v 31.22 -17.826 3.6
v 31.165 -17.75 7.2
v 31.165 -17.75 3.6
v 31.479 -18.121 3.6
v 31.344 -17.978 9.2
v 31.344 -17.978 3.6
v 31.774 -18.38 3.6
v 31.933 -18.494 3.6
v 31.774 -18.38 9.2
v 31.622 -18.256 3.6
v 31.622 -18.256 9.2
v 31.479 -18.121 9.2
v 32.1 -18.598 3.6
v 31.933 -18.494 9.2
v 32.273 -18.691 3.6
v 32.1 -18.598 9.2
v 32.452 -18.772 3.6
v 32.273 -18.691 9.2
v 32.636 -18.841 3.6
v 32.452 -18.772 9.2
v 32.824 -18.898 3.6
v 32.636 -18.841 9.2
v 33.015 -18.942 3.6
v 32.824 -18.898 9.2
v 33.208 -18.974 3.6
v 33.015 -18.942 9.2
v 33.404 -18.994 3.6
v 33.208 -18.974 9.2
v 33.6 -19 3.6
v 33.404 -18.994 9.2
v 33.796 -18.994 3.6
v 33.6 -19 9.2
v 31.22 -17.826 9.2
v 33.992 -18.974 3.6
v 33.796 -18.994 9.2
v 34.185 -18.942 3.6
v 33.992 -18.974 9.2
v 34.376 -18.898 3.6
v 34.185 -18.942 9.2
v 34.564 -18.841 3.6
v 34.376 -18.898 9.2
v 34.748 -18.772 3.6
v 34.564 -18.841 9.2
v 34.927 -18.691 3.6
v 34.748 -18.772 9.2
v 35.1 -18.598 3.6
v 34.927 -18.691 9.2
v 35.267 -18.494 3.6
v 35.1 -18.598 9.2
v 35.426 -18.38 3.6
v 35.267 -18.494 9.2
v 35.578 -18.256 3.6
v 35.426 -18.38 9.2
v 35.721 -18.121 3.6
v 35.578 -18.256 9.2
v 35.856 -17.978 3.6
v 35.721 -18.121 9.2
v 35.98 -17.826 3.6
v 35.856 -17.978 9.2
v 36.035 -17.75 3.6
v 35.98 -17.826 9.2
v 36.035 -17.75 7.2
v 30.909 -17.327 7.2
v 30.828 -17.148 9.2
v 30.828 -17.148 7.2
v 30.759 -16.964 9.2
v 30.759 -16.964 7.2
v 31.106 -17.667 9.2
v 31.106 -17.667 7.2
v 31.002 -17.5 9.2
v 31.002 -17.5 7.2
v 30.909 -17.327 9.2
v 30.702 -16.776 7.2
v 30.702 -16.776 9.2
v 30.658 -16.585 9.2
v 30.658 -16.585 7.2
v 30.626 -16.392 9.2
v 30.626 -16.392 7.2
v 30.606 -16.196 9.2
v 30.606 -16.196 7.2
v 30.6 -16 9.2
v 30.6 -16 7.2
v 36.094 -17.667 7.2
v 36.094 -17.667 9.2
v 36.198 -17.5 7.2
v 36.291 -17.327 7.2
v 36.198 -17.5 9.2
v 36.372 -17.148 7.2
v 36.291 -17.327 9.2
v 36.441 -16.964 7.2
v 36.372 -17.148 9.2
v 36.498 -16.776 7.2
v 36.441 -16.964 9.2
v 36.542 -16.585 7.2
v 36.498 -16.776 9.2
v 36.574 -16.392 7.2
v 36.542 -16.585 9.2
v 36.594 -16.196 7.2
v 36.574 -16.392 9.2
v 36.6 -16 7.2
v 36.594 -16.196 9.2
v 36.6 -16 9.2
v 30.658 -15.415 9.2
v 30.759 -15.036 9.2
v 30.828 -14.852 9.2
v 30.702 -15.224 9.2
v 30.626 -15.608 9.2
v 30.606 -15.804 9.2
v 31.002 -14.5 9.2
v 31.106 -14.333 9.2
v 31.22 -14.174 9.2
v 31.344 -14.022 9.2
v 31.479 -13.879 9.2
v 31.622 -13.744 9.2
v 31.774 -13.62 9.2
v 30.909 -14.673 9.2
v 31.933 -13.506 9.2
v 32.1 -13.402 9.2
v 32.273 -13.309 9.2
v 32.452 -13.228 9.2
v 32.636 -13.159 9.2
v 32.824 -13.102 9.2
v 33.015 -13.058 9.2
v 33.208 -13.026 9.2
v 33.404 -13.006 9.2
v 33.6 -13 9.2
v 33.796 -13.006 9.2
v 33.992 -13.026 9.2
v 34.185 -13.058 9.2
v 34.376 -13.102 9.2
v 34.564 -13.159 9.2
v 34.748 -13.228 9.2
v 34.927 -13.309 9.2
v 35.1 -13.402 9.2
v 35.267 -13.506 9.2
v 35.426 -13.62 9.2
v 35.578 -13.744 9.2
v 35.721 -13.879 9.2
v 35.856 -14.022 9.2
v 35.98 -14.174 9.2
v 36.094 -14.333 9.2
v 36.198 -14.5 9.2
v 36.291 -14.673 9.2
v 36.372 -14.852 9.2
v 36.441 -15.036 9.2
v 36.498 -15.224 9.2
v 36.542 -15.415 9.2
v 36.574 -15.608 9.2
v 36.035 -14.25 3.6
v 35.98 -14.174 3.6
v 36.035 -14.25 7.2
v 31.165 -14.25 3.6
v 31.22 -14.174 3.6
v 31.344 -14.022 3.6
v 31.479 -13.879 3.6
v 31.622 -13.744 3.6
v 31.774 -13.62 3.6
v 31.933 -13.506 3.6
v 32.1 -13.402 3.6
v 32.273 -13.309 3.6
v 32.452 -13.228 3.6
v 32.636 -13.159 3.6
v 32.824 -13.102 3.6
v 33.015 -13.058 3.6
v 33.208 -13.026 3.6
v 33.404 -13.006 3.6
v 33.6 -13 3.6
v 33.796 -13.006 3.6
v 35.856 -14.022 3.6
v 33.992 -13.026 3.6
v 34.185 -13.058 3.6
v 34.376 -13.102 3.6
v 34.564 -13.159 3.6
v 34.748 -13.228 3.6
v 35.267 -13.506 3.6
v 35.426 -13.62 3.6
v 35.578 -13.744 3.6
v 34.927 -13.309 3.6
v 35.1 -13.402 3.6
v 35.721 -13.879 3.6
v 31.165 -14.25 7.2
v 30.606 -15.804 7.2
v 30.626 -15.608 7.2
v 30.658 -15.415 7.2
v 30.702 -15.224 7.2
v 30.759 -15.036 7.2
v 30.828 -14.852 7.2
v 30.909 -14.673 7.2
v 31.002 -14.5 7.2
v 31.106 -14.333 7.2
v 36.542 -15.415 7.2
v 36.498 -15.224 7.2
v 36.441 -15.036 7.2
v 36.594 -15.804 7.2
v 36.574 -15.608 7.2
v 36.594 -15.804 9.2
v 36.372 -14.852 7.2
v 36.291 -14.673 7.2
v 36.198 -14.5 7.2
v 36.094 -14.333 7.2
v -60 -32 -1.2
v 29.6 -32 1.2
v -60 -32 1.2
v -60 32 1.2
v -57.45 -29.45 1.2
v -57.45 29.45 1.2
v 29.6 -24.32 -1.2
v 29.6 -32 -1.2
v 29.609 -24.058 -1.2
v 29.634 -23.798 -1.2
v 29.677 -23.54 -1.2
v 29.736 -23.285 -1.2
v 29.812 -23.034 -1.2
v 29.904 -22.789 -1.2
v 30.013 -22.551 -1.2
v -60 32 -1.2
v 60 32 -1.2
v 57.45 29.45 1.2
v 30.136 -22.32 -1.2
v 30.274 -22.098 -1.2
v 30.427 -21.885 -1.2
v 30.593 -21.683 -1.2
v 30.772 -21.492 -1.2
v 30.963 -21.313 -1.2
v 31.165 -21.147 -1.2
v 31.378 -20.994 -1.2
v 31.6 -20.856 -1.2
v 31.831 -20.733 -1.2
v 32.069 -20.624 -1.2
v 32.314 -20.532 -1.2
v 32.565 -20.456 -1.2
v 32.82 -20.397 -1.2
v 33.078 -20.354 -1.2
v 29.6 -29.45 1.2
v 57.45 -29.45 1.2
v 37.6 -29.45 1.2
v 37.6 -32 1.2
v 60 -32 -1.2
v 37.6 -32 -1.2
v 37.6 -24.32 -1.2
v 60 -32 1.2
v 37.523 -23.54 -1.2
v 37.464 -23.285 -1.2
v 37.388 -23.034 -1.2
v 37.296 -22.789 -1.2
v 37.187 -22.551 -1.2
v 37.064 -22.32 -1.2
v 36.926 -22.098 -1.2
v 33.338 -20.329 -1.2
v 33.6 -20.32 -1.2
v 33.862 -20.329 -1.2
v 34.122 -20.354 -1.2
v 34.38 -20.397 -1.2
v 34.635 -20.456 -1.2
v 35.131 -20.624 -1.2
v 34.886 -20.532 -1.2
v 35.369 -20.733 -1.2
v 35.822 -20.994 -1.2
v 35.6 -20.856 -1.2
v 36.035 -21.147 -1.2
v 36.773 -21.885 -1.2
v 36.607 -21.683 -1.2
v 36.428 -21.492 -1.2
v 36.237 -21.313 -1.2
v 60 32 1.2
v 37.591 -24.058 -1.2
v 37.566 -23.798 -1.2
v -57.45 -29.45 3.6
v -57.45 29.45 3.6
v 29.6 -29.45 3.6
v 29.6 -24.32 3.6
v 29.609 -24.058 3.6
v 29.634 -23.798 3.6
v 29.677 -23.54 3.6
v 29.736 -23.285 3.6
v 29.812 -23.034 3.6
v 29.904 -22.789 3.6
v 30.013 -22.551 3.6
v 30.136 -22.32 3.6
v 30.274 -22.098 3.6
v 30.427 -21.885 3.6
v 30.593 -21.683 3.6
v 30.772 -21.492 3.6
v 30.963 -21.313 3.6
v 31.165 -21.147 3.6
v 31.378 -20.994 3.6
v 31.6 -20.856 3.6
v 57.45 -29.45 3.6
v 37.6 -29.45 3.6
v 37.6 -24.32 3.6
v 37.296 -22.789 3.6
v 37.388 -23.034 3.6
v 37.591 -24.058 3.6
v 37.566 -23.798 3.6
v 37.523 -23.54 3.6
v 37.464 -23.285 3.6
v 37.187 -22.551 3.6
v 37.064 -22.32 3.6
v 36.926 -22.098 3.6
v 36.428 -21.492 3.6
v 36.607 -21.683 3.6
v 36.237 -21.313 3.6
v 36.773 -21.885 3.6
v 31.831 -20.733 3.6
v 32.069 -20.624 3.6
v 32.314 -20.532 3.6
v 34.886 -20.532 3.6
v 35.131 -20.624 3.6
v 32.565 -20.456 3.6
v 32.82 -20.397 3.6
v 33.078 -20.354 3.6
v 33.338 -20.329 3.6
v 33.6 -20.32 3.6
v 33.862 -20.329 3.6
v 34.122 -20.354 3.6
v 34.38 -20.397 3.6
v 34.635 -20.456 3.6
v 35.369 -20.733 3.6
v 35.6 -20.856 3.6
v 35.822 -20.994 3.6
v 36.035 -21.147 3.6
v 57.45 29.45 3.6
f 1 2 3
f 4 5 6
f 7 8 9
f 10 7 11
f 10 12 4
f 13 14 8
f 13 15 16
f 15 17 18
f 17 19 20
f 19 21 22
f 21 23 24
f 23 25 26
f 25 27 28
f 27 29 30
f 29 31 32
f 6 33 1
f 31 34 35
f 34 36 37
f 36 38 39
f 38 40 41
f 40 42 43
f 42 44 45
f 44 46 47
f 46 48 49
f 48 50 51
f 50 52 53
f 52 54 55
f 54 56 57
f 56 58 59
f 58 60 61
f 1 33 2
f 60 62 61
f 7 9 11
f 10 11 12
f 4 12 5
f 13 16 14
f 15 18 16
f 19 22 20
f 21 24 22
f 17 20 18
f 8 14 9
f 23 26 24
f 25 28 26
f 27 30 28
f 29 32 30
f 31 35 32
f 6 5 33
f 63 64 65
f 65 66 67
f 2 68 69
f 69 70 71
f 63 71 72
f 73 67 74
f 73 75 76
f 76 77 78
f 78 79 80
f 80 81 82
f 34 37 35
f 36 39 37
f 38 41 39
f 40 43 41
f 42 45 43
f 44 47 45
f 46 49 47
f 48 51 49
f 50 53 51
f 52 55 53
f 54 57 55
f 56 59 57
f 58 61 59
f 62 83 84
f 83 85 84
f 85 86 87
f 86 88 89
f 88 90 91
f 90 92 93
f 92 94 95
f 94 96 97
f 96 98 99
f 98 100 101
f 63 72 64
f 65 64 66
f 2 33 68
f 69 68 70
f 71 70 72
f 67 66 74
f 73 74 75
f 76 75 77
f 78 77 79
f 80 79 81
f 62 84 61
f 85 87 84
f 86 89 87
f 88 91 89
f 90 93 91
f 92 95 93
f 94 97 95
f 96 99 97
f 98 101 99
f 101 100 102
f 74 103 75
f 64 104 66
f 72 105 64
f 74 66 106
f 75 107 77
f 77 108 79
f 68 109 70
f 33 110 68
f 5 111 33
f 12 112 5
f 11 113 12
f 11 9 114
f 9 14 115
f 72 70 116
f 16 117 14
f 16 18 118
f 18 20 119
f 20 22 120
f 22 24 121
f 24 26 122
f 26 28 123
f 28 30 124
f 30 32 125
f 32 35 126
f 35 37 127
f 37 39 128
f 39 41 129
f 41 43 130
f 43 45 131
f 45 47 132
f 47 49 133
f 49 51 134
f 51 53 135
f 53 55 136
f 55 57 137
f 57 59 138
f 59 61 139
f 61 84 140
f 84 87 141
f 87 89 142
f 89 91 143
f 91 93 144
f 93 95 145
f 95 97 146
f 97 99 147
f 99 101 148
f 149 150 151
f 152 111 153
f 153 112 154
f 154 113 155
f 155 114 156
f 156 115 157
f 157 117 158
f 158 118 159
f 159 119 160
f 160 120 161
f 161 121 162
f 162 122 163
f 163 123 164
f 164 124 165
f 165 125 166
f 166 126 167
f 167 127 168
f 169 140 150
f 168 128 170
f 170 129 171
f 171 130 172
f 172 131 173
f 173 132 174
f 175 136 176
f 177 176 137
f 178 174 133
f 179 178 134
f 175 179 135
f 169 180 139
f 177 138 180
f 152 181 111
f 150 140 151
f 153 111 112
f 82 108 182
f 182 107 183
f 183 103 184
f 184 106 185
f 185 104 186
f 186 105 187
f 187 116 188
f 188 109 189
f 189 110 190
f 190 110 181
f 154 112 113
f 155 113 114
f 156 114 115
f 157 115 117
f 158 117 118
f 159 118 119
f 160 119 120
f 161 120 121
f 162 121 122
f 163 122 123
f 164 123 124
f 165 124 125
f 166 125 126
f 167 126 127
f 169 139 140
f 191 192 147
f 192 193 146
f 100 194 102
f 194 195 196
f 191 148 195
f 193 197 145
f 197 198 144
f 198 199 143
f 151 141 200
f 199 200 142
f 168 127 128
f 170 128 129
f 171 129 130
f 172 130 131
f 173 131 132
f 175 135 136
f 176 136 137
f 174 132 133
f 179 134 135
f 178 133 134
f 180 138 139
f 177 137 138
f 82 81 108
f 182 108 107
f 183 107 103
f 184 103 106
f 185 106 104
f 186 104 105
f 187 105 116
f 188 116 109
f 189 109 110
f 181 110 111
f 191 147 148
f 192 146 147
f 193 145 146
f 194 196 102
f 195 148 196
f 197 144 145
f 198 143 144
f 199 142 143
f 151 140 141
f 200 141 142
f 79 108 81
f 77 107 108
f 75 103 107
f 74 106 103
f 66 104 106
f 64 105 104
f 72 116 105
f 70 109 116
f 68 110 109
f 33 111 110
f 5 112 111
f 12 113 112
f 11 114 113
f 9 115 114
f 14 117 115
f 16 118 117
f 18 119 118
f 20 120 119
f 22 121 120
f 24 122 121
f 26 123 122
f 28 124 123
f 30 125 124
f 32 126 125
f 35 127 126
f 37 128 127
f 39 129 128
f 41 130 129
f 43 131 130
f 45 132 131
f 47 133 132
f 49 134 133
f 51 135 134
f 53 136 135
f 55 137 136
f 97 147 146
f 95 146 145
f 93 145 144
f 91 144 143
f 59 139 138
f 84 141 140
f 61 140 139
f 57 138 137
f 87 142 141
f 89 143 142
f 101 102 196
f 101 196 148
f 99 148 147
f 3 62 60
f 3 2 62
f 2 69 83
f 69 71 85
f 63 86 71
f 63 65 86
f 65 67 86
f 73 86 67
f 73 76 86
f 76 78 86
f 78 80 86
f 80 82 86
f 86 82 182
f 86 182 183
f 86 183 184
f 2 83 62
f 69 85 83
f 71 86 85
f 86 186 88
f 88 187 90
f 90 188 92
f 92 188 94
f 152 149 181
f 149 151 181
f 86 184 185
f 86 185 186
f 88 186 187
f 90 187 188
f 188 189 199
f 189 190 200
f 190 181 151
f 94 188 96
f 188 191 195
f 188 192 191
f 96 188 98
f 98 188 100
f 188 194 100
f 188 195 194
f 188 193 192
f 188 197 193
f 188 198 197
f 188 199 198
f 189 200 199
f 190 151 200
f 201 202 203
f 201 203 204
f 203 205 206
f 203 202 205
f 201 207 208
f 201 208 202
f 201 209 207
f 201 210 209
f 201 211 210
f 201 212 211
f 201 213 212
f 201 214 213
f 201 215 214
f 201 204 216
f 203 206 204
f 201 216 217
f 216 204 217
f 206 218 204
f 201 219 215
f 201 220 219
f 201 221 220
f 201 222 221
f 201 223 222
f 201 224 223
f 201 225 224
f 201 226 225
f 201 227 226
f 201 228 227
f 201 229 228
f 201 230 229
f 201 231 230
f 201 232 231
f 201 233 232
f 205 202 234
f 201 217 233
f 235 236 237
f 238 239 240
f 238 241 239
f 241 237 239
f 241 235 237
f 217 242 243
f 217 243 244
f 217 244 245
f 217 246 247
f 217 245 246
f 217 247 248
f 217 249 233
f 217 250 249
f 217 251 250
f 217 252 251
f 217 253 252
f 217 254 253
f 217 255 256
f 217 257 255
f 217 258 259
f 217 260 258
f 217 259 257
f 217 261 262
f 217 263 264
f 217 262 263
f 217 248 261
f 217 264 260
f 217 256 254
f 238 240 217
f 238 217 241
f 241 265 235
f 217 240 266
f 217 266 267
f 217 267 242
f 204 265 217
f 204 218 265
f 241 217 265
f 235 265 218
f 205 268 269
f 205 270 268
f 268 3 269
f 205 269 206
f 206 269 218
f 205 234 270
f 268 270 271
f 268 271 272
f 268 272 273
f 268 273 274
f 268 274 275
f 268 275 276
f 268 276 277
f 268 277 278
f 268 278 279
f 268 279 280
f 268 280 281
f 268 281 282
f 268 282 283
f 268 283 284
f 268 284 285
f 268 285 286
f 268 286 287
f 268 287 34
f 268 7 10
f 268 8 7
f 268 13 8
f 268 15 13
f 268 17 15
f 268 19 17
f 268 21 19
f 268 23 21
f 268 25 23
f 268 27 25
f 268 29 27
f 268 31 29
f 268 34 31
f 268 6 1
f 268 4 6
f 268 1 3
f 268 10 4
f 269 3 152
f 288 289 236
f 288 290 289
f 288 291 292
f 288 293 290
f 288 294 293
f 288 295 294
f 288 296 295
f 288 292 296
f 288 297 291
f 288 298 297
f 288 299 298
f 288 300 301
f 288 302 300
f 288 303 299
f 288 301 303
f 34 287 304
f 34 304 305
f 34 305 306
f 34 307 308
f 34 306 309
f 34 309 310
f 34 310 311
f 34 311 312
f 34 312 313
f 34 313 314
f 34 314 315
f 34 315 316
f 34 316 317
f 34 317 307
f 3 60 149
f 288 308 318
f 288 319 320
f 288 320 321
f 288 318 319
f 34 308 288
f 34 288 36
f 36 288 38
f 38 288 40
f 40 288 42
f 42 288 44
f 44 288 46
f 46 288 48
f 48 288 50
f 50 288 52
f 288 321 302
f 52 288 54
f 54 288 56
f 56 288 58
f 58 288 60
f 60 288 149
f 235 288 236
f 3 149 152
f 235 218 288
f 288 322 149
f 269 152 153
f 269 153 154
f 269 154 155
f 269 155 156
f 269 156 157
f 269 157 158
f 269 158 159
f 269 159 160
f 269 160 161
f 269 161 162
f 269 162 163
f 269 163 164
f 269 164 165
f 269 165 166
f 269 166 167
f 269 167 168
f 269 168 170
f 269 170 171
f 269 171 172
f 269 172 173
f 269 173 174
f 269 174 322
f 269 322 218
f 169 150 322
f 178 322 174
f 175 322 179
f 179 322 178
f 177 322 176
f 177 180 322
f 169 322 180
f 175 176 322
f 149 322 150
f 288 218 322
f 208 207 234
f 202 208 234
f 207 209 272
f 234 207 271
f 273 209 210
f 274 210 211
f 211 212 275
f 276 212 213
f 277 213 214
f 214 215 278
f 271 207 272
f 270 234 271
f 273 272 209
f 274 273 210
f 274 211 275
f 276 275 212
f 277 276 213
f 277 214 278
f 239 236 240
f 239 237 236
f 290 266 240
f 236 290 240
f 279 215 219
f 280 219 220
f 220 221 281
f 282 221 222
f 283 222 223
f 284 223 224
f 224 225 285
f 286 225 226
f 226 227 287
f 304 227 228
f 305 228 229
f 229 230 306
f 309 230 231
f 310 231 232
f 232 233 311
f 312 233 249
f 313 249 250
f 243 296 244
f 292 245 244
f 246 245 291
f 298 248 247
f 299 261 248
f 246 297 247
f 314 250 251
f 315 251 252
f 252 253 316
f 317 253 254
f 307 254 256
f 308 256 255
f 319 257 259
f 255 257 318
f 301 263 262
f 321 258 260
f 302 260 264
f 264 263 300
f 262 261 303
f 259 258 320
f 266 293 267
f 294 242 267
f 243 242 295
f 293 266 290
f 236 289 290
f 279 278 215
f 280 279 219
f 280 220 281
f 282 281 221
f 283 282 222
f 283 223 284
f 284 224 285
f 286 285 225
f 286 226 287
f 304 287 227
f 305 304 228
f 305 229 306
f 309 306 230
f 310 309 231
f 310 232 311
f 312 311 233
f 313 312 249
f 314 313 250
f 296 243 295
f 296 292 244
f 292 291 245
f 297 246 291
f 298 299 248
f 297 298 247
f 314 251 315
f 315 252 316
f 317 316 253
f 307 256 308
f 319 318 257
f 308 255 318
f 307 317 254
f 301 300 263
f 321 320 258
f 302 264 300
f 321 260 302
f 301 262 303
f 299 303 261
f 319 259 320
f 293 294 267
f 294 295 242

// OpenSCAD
// file: params.scad
// All dimensions in millimetres.
// Thicknesses are whole multiples of a 0.4 mm nozzle.

// --- Apertures -------------------------------------------------------------
aperture_d    = 40;    // diameter of the circle each icon fits inside
face_t        = 1.2;   // translucent face left at the icons (3 x 0.4)

// --- Shell -----------------------------------------------------------------
wall          = 2.4;   // outer wall, opaque at this thickness (6 x 0.4)
divider_t     = 2.4;   // wall between the two chambers
chamber_depth = 25;    // pixel-to-face standoff; governs how evenly light spreads
aperture_gap  = 16;    // flat space between the two aperture circles
margin        = 12;    // border around the apertures
backplate_t   = 2.4;

// --- Back plate features, slot open to the plate edge ------------------------
cable_slot_w  = 8.0;   // deliberately oversized; no tolerance to miss
post_h        = 8.0;   // zip-tie post height
post_d        = 6.0;   // zip-tie post diameter
post_slot_w   = 3.5;   // slot through the post for the zip tie

// --- Fit -------------------------------------------------------------------
clearance     = 0.3;   // back plate lip to body cavity

$fn = 96;

// --- Derived ---------------------------------------------------------------
body_w = 2 * margin + 2 * aperture_d + aperture_gap;   // 120
body_h = 2 * margin + aperture_d;                      // 64
body_d = wall + chamber_depth;                         // 27.4
ap_x   = (aperture_d + aperture_gap) / 2;              // 28, aperture centre offset

// --- Sanity ----------------------------------------------------------------
assert(divider_t <= aperture_gap,
       "Divider is wider than the gap between apertures; they would overlap.");
assert(face_t < wall,
       "Face must be thinner than the wall, or there is nothing left to thin.");
assert(post_slot_w < post_d,
       "Zip-tie slot is wider than the post it passes through.");
assert(face_t >= 0.8,
       "A face thinner than 0.8 mm will not print reliably and may be translucent enough to show the pixel as a hot spot.");
// main file
include <params.scad>

// The back plate carries the board (foam tape, no printed retention) and the
// zip-tie post that takes cable strain. The cable enters through a U-shaped
// slot open to the plate edge — it drops in sideways, so no connector ever
// has to pass through a closed opening. The zip tie cinched around the cable
// just inboard of the slot is far wider than the slot mouth, so the cable
// cannot pull back out; the slot only has to admit the cable, deliberately
// oversized with no tolerance to miss.

module backplate() {
    inner_w = body_w - 2 * wall - clearance;
    inner_h = body_h - 2 * wall - clearance;

    union() {
        // Plate proper: a lip that drops into the body's open back, on an
        // outer flange that seats against the body's rear edge.
        cube([body_w, body_h, backplate_t], center = true);
        translate([0, 0, backplate_t])
            cube([inner_w, inner_h, backplate_t], center = true);

        // Zip-tie post, offset to one side so it clears the board.
        difference() {
            translate([body_w * 0.28, -body_h * 0.25, backplate_t / 2 + post_h / 2])
                cylinder(d = post_d, h = post_h, center = true);
            translate([body_w * 0.28, -body_h * 0.25, backplate_t / 2 + post_h / 2])
                cube([post_d + 2, post_slot_w, post_h * 0.5], center = true);
        }
    }
}

module backplate_with_holes() {
    difference() {
        backplate();
        // Oversized cable slot, open to the -Y edge so the cable drops in
        // sideways instead of threading a connector through a closed hole.
        hull() {
            translate([body_w * 0.28, -body_h * 0.38, 0])
                cylinder(d = cable_slot_w, h = backplate_t * 6, center = true);
            translate([body_w * 0.28, -body_h, 0])
                cylinder(d = cable_slot_w, h = backplate_t * 6, center = true);
        }
    }
}

backplate_with_holes();
